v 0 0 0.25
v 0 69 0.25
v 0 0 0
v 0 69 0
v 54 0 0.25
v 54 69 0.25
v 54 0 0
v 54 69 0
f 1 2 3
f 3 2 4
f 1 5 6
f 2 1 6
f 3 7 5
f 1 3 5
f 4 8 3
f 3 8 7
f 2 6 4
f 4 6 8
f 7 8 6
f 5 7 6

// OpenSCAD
// PWM Controller Board dimensions
pwmWidth = 26;
pwmLength = 63;
pwmScrewHoleInset = 3.2;
pwmScrewHoleDiameter = 3.5;
pwmClearance = 24;

// NeoPixel Shield dimensions
neoWidth = 54;
neoLength = 69;

// cutouts
cutoutWidth = 5;
cutoutHeight = 20;

// center
centerHoleDiameter = 4;

// Padding between cavity and outer edge
wallWidth = 1.5;


cube([neoWidth, neoLength, .25]);
